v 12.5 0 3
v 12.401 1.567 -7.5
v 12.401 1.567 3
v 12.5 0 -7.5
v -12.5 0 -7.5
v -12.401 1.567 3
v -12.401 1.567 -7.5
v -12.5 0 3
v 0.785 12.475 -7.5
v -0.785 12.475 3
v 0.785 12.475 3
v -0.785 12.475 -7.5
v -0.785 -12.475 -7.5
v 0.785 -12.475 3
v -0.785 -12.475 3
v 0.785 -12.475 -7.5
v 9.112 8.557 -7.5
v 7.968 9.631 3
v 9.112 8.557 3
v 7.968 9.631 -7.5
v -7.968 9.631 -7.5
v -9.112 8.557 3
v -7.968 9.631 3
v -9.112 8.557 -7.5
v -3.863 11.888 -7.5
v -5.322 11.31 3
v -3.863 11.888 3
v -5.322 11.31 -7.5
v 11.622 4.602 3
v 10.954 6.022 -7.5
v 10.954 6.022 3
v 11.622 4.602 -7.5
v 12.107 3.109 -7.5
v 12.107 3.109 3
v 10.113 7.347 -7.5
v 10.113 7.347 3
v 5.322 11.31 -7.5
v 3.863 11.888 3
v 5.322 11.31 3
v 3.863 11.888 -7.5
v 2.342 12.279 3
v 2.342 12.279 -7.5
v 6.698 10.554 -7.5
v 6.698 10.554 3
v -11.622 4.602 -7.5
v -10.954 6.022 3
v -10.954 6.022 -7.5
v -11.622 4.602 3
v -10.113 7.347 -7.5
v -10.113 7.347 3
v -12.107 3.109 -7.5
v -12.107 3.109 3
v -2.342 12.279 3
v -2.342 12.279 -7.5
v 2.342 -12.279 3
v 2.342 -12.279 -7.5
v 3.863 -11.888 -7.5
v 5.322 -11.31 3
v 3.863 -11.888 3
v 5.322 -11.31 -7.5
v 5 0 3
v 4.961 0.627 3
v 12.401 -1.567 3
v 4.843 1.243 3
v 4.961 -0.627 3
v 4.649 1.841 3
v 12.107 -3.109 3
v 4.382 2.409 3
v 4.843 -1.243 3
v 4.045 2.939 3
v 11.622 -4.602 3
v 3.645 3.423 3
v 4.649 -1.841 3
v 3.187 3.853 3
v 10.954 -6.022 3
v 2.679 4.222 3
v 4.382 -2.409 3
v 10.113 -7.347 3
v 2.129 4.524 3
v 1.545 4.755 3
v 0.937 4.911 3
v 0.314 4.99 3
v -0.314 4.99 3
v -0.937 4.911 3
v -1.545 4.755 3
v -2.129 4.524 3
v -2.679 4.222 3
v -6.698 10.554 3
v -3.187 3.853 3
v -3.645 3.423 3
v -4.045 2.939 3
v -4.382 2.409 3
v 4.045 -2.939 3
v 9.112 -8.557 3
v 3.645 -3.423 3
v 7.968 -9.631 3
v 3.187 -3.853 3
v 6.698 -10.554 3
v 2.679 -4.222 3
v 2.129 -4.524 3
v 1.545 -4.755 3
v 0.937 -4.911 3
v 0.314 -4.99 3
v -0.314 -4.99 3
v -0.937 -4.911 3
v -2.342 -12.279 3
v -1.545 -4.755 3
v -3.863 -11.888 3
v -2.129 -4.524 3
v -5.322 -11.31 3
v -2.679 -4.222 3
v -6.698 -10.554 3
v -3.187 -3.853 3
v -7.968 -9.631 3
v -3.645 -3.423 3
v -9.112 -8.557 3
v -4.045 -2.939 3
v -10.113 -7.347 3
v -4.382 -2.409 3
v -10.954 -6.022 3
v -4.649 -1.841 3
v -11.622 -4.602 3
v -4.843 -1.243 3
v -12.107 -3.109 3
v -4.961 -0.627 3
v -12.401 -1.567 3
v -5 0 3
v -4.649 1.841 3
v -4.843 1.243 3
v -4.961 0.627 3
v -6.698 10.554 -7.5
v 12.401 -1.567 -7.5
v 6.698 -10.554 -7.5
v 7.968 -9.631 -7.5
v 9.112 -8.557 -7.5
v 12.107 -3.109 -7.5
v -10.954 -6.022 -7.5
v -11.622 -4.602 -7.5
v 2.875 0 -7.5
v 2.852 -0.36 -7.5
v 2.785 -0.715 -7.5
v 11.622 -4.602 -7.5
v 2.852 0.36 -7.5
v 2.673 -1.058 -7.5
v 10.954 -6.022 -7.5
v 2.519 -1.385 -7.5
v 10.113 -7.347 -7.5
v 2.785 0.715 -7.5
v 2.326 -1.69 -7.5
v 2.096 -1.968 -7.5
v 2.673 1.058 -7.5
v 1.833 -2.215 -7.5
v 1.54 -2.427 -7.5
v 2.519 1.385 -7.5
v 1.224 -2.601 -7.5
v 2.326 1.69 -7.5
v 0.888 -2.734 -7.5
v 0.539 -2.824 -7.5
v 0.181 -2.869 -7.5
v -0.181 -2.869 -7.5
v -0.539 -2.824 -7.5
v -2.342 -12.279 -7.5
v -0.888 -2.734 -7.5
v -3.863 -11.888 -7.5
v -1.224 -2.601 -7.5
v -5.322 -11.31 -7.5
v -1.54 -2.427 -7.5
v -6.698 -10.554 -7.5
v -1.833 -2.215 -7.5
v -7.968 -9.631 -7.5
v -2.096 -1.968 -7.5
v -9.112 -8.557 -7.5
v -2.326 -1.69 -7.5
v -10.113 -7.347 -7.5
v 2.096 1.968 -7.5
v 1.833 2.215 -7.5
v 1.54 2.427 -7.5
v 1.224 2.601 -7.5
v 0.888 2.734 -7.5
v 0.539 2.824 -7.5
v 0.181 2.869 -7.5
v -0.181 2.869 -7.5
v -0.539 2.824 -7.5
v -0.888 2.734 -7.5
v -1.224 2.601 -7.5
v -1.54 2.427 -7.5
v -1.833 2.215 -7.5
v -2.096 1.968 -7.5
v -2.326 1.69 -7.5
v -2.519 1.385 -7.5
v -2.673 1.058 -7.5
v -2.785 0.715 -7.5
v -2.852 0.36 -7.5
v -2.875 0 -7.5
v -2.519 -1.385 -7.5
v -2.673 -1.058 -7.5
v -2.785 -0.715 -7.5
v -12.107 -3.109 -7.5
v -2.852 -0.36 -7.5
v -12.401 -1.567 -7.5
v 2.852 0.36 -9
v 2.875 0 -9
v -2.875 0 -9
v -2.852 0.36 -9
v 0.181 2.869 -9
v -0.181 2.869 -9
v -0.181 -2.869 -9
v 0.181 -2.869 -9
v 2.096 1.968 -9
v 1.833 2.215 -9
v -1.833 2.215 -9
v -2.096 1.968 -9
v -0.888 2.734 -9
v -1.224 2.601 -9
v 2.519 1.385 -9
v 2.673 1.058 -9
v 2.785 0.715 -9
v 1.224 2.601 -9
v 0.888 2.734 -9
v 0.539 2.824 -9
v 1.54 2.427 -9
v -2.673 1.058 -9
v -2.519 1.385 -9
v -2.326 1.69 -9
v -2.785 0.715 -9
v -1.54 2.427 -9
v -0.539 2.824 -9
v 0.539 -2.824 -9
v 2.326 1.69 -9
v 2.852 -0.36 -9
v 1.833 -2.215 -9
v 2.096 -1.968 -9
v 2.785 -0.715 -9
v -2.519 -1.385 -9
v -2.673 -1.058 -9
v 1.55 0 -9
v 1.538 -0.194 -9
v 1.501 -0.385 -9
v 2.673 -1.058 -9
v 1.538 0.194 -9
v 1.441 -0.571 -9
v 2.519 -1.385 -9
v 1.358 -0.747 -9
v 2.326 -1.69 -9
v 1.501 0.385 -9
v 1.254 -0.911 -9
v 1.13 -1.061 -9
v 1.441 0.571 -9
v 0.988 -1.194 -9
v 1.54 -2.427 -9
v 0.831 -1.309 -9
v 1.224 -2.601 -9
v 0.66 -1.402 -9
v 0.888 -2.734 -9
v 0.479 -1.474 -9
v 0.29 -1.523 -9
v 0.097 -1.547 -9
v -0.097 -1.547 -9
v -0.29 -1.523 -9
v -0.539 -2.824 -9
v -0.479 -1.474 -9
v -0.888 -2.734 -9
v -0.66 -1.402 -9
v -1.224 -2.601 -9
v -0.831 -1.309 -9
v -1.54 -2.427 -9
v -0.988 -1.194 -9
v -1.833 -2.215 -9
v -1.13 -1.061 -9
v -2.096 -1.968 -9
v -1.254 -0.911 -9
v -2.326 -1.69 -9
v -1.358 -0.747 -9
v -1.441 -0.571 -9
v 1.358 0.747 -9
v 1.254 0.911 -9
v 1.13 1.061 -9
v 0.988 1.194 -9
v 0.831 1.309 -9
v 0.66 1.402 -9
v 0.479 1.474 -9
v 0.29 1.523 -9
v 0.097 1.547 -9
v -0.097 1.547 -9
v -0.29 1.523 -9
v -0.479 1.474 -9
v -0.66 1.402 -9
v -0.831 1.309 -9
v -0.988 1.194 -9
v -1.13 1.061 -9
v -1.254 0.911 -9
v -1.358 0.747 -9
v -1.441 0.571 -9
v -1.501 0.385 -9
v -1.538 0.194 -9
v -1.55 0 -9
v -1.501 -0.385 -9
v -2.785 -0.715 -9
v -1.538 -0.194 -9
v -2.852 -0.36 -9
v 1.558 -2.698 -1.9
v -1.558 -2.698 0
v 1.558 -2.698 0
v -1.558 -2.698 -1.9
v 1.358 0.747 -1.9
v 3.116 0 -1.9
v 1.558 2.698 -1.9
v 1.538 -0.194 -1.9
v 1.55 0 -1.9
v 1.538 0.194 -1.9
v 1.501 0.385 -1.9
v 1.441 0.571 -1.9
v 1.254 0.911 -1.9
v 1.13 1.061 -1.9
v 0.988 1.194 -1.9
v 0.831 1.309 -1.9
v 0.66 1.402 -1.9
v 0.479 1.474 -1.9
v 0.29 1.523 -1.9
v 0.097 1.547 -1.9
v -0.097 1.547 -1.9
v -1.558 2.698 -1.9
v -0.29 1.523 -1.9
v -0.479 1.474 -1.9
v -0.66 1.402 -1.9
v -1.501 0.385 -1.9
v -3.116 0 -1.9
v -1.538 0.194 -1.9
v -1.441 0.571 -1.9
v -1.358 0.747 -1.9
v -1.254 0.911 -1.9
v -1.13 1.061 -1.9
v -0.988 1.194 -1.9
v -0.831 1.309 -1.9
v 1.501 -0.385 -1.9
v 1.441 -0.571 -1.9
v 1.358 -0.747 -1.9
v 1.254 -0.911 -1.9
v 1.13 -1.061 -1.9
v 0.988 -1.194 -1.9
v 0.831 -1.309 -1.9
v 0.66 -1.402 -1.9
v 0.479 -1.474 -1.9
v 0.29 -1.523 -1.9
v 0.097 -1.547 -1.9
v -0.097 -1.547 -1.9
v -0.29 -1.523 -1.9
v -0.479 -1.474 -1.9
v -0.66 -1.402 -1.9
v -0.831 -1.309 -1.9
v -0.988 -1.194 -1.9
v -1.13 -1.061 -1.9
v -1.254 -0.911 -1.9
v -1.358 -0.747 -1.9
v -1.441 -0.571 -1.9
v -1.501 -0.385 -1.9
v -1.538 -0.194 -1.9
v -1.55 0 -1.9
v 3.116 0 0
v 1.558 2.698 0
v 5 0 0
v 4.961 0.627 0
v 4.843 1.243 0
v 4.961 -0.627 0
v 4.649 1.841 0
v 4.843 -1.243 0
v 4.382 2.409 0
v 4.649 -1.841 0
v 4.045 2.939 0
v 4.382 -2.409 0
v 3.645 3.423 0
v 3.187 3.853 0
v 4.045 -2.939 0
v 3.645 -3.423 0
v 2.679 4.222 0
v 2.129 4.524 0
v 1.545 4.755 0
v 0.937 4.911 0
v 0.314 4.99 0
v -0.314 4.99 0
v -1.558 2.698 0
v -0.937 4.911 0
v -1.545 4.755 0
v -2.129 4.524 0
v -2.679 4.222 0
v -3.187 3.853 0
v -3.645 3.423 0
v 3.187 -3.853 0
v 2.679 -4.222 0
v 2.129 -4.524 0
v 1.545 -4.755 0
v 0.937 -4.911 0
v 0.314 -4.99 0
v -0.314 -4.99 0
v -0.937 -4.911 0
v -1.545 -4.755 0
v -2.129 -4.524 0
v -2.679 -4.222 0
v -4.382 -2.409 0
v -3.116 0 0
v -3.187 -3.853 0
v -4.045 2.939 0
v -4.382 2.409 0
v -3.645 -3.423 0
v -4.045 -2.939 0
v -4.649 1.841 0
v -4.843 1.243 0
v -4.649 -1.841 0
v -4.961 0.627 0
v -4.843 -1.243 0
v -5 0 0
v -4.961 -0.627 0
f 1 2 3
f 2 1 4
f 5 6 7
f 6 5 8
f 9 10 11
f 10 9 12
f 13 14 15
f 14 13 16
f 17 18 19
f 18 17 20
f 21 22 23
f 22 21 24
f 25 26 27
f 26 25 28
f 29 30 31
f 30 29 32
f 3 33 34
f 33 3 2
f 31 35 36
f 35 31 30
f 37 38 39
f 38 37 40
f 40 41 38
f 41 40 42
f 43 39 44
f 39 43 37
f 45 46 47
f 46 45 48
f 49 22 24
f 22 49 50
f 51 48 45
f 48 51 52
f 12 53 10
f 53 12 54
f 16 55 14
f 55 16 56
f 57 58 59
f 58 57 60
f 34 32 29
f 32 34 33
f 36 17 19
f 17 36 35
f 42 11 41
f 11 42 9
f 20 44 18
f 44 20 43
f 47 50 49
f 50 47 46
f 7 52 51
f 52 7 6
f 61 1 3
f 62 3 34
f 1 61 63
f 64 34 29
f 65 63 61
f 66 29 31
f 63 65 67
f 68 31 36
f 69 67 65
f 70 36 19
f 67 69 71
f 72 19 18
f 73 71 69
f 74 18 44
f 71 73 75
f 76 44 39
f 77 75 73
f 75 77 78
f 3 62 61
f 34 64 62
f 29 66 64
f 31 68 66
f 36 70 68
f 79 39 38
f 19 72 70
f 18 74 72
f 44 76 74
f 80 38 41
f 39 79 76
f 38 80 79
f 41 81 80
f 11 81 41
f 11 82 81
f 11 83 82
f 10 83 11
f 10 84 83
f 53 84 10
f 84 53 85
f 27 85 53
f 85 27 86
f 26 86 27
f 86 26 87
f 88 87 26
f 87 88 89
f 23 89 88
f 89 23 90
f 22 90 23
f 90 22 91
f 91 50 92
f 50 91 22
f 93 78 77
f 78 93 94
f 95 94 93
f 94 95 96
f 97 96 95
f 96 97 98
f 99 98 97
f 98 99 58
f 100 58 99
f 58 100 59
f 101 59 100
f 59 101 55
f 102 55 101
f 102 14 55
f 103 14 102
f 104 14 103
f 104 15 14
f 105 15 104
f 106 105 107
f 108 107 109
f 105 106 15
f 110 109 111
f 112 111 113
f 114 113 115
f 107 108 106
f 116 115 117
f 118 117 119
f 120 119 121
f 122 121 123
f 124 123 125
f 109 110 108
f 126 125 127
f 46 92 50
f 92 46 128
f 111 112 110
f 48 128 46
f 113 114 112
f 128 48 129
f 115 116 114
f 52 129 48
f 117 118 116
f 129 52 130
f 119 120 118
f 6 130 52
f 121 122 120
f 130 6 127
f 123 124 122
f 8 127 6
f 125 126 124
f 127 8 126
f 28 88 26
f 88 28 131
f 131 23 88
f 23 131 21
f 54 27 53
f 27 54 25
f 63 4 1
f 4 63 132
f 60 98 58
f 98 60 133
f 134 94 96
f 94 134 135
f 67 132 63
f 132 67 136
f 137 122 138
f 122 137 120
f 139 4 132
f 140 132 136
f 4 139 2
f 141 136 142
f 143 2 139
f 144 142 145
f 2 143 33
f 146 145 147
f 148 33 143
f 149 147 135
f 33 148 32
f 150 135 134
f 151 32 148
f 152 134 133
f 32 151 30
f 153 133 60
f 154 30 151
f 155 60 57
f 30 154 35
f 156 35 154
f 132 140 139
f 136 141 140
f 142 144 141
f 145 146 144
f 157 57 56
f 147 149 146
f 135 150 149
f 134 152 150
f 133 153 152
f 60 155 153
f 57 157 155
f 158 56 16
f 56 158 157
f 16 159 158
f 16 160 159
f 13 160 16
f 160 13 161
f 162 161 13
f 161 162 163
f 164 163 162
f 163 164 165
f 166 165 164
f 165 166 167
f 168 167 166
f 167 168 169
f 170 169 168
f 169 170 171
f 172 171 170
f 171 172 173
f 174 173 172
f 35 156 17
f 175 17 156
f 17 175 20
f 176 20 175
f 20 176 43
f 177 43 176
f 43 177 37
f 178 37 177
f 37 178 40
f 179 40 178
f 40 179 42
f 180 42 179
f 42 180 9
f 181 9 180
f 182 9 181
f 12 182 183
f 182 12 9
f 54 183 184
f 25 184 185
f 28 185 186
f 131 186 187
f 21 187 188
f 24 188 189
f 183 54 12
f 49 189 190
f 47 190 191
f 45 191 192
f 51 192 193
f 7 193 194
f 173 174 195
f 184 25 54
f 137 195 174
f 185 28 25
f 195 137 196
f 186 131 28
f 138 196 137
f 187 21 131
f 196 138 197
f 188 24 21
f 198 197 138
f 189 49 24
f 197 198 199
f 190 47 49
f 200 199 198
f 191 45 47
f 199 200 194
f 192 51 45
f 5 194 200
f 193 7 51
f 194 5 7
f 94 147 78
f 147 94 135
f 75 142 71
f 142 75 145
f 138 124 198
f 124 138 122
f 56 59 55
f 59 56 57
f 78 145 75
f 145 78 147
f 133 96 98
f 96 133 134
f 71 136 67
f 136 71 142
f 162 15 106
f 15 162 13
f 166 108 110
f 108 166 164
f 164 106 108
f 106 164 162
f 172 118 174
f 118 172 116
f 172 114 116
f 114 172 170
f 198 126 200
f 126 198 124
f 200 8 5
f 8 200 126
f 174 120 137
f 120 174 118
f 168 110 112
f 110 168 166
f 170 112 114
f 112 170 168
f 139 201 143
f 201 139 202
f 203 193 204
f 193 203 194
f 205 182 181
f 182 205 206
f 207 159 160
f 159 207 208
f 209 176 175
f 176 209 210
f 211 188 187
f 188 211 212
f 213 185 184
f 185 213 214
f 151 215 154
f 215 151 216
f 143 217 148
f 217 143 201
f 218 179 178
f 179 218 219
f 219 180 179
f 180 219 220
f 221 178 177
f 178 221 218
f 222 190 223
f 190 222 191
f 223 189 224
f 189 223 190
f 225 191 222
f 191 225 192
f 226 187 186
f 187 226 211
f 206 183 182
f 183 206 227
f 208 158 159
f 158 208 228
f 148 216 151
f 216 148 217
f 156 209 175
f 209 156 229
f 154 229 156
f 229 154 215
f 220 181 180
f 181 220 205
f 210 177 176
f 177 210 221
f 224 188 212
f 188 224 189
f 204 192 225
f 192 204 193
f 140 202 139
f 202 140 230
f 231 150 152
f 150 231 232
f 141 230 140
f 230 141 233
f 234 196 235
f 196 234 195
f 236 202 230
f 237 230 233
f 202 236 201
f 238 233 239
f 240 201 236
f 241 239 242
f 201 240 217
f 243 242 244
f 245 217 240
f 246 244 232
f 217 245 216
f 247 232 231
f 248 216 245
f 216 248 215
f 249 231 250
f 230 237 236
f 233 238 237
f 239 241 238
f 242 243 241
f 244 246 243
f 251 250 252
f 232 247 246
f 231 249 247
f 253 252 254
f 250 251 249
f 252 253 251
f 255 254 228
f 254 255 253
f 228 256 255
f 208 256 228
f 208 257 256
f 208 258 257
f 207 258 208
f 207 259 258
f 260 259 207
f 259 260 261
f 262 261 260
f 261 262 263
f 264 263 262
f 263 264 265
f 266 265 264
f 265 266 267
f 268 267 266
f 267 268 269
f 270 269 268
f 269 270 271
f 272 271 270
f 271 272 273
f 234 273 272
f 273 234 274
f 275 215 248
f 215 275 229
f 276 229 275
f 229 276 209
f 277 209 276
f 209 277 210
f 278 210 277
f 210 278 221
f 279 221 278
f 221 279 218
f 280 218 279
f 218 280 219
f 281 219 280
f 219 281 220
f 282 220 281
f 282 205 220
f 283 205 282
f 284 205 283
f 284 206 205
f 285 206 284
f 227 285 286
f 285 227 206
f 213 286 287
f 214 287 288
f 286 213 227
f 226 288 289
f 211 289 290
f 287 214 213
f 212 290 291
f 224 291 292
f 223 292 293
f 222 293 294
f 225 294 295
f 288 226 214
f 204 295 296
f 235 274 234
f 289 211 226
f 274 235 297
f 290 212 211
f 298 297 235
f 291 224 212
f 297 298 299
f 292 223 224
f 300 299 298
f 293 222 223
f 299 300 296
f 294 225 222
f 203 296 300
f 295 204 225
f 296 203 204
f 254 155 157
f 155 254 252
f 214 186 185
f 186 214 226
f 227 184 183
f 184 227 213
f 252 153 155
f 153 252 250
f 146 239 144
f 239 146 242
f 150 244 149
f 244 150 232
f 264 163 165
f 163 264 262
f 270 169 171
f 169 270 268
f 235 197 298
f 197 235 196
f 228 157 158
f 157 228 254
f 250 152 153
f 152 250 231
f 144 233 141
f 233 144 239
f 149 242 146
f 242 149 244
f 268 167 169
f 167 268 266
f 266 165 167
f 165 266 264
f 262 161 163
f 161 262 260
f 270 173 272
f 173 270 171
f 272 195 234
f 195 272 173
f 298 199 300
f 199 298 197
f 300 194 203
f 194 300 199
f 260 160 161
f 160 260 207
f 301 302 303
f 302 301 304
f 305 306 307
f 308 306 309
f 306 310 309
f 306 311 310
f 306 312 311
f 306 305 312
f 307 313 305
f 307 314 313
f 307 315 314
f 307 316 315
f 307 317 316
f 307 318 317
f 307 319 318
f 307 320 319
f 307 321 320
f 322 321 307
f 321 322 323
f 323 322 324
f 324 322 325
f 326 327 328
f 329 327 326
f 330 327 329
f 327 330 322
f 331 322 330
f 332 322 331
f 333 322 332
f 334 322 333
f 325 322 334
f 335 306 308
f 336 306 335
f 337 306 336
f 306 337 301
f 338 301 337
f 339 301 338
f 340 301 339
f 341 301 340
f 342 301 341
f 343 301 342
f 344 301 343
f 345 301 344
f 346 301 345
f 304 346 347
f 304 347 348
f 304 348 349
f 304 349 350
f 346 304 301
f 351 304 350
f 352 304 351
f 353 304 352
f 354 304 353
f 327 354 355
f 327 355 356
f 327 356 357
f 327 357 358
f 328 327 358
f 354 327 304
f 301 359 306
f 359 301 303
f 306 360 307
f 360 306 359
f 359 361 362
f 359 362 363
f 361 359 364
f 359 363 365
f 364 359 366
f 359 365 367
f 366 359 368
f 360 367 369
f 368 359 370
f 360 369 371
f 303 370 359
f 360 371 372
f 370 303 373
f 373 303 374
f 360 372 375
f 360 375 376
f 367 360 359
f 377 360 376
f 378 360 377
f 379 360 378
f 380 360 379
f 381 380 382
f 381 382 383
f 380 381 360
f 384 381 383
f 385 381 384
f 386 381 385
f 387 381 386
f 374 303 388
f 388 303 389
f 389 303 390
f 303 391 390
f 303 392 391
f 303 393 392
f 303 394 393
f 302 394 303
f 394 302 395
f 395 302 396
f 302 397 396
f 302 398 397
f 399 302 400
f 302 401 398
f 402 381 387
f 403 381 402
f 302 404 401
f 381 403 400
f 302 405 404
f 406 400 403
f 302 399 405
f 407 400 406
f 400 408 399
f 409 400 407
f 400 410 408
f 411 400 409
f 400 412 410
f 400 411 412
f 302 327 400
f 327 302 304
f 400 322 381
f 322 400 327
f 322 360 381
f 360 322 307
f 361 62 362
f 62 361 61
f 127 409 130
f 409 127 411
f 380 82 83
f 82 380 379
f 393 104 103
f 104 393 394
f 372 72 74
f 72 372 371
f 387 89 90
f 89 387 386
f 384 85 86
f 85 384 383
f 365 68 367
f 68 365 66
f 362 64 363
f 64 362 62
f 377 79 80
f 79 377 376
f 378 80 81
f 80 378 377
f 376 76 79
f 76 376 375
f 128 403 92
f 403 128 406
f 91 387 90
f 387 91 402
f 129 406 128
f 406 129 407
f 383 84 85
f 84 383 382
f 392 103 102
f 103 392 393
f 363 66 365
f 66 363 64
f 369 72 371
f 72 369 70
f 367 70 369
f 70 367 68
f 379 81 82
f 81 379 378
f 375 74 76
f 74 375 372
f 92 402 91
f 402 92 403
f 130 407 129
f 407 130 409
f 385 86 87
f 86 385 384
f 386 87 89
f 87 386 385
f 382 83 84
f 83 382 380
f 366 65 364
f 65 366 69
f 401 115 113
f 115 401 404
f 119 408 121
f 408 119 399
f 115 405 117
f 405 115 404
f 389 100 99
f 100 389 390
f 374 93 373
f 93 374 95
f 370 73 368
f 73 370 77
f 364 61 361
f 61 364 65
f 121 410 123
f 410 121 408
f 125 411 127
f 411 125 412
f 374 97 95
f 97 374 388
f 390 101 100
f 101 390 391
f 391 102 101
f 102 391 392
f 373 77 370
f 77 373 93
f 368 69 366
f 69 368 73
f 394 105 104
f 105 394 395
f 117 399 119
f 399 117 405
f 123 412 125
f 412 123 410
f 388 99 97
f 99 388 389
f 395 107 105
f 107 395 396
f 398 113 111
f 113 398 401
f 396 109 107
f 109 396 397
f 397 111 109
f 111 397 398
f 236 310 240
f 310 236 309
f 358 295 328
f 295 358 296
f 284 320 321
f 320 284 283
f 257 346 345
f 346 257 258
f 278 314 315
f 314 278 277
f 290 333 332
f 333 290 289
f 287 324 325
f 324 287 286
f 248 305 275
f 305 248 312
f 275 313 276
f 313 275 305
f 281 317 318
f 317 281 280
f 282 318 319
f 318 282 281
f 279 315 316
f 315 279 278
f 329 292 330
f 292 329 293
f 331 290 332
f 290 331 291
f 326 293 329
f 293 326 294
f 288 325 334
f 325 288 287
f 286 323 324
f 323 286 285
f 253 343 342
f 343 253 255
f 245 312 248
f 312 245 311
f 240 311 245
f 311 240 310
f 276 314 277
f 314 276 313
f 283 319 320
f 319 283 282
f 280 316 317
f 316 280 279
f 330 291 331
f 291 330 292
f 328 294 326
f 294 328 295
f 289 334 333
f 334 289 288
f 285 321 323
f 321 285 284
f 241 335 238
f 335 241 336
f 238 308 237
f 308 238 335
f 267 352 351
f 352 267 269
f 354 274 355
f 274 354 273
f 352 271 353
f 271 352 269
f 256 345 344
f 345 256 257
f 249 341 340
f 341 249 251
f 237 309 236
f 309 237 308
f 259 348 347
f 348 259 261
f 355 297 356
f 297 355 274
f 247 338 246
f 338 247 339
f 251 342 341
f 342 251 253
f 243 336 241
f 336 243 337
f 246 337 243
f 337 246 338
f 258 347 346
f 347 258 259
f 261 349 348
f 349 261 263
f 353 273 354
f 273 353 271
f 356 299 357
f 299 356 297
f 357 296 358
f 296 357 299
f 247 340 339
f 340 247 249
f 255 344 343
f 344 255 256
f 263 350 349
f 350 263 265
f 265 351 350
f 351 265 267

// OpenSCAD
$fn = 50;

difference() {
	union() {
		translate(v = [0, 0, -7.5]) {
			cylinder(h = 10.5, r = 12.5);
		}
		#translate(v = [0, 0, -9.0]) {
			cylinder(h = 9, r = 2.875);
		}
	}
	union() {
		translate(v = [0, 0, 0]) {
			rotate(a = [0, 0, 0]) {
				difference() {
					union() {
						translate(v = [0, 0, -1.9]) {
							linear_extrude(height = 1.9) {
								polygon(points = [[3.1158, 0.0], [1.5579000000000005, 2.698361953111554], [-1.5578999999999994, 2.6983619531115544], [-3.1158, 3.815754496783323e-16], [-1.5579000000000014, -2.6983619531115535], [1.557899999999998, -2.6983619531115552]]);
							}
						}
					}
					union();
				}
			}
		}
		#cylinder(h = 3, r = 5.0);
		#translate(v = [0, 0, -100.0]) {
			cylinder(h = 200, r = 1.55);
		}
	}
}
